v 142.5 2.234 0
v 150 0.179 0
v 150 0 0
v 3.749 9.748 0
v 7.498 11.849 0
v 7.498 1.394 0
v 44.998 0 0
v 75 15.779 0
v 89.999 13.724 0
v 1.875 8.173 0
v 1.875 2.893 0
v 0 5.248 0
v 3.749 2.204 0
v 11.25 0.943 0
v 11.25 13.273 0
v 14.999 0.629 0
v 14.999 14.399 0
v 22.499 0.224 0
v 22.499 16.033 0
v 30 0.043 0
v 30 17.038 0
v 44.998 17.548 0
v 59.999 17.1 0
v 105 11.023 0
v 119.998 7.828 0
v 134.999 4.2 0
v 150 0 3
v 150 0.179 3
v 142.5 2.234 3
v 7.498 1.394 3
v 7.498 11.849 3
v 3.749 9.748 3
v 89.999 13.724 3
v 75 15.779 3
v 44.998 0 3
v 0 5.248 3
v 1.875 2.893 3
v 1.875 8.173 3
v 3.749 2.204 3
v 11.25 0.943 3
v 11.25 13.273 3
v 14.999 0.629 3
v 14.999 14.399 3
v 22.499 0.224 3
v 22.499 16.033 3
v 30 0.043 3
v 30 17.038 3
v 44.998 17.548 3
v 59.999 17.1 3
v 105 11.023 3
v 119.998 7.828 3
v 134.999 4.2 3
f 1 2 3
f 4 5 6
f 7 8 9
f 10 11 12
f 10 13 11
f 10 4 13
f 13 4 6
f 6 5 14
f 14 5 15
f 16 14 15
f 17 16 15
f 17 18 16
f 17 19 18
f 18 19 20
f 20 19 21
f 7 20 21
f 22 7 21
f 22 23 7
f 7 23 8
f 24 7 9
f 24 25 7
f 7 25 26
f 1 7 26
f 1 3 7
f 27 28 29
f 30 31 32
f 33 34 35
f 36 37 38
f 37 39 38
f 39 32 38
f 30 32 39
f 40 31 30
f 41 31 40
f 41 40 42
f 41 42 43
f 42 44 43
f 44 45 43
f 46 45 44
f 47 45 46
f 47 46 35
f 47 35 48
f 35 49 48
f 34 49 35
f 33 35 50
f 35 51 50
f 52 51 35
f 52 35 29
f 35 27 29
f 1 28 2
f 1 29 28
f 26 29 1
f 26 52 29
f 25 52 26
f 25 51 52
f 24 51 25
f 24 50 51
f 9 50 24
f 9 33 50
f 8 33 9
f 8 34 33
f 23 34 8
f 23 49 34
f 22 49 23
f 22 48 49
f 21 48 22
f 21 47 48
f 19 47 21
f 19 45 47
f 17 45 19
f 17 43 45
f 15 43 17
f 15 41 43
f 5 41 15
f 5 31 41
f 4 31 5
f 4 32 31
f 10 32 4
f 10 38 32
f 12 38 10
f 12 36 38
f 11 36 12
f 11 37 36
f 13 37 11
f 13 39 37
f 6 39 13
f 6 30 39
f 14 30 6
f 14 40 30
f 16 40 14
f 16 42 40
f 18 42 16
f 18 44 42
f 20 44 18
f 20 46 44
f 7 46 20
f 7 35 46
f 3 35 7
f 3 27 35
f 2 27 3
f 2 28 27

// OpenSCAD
// Clark-Y Airfoil Coordinates
airfoil_points = [
    // --- Upper surface: trailing edge to leading edge ---
    [1.0000,  0.0012],
    [0.9500,  0.0149],
    [0.9000,  0.0280],
    [0.8000,  0.0522],
    [0.7000,  0.0735],
    [0.6000,  0.0915],
    [0.5000,  0.1052],
    [0.4000,  0.1140],
    [0.3000,  0.1170],  // max thickness
    [0.2000,  0.1136],
    [0.1500,  0.1069],
    [0.1000,  0.0960],
    [0.0750,  0.0885],
    [0.0500,  0.0790],
    [0.0250,  0.0650],
    [0.0125,  0.0545],
    [0.0000,  0.0350],  // leading edge

    // --- Lower surface: leading edge to trailing edge ---
    // Flat bottom begins at ~x=0.30; forward of that, small positive camber
    [0.0125,  0.0193],
    [0.0250,  0.0147],
    [0.0500,  0.0093],
    [0.0750,  0.0063],
    [0.1000,  0.0042],
    [0.1500,  0.0015],
    [0.2000,  0.0003],
    [0.3000,  0.0000],  // flat bottom begins here
    [0.4000,  0.0000],
    [0.5000,  0.0000],
    [0.6000,  0.0000],
    [0.7000,  0.0000],
    [0.8000,  0.0000],
    [0.9000,  0.0000],
    [0.9500,  0.0000],
    [1.0000,  0.0000],  // trailing edge (flat bottom meets upper)
];

module wing_rib(chord, width) {
    linear_extrude(height = width) {
        scale([chord, chord, 1]) {
            polygon(points = airfoil_points);
        }
    }
}

// 2026-04-18 Render
wing_rib(chord = 150, width = 3);
